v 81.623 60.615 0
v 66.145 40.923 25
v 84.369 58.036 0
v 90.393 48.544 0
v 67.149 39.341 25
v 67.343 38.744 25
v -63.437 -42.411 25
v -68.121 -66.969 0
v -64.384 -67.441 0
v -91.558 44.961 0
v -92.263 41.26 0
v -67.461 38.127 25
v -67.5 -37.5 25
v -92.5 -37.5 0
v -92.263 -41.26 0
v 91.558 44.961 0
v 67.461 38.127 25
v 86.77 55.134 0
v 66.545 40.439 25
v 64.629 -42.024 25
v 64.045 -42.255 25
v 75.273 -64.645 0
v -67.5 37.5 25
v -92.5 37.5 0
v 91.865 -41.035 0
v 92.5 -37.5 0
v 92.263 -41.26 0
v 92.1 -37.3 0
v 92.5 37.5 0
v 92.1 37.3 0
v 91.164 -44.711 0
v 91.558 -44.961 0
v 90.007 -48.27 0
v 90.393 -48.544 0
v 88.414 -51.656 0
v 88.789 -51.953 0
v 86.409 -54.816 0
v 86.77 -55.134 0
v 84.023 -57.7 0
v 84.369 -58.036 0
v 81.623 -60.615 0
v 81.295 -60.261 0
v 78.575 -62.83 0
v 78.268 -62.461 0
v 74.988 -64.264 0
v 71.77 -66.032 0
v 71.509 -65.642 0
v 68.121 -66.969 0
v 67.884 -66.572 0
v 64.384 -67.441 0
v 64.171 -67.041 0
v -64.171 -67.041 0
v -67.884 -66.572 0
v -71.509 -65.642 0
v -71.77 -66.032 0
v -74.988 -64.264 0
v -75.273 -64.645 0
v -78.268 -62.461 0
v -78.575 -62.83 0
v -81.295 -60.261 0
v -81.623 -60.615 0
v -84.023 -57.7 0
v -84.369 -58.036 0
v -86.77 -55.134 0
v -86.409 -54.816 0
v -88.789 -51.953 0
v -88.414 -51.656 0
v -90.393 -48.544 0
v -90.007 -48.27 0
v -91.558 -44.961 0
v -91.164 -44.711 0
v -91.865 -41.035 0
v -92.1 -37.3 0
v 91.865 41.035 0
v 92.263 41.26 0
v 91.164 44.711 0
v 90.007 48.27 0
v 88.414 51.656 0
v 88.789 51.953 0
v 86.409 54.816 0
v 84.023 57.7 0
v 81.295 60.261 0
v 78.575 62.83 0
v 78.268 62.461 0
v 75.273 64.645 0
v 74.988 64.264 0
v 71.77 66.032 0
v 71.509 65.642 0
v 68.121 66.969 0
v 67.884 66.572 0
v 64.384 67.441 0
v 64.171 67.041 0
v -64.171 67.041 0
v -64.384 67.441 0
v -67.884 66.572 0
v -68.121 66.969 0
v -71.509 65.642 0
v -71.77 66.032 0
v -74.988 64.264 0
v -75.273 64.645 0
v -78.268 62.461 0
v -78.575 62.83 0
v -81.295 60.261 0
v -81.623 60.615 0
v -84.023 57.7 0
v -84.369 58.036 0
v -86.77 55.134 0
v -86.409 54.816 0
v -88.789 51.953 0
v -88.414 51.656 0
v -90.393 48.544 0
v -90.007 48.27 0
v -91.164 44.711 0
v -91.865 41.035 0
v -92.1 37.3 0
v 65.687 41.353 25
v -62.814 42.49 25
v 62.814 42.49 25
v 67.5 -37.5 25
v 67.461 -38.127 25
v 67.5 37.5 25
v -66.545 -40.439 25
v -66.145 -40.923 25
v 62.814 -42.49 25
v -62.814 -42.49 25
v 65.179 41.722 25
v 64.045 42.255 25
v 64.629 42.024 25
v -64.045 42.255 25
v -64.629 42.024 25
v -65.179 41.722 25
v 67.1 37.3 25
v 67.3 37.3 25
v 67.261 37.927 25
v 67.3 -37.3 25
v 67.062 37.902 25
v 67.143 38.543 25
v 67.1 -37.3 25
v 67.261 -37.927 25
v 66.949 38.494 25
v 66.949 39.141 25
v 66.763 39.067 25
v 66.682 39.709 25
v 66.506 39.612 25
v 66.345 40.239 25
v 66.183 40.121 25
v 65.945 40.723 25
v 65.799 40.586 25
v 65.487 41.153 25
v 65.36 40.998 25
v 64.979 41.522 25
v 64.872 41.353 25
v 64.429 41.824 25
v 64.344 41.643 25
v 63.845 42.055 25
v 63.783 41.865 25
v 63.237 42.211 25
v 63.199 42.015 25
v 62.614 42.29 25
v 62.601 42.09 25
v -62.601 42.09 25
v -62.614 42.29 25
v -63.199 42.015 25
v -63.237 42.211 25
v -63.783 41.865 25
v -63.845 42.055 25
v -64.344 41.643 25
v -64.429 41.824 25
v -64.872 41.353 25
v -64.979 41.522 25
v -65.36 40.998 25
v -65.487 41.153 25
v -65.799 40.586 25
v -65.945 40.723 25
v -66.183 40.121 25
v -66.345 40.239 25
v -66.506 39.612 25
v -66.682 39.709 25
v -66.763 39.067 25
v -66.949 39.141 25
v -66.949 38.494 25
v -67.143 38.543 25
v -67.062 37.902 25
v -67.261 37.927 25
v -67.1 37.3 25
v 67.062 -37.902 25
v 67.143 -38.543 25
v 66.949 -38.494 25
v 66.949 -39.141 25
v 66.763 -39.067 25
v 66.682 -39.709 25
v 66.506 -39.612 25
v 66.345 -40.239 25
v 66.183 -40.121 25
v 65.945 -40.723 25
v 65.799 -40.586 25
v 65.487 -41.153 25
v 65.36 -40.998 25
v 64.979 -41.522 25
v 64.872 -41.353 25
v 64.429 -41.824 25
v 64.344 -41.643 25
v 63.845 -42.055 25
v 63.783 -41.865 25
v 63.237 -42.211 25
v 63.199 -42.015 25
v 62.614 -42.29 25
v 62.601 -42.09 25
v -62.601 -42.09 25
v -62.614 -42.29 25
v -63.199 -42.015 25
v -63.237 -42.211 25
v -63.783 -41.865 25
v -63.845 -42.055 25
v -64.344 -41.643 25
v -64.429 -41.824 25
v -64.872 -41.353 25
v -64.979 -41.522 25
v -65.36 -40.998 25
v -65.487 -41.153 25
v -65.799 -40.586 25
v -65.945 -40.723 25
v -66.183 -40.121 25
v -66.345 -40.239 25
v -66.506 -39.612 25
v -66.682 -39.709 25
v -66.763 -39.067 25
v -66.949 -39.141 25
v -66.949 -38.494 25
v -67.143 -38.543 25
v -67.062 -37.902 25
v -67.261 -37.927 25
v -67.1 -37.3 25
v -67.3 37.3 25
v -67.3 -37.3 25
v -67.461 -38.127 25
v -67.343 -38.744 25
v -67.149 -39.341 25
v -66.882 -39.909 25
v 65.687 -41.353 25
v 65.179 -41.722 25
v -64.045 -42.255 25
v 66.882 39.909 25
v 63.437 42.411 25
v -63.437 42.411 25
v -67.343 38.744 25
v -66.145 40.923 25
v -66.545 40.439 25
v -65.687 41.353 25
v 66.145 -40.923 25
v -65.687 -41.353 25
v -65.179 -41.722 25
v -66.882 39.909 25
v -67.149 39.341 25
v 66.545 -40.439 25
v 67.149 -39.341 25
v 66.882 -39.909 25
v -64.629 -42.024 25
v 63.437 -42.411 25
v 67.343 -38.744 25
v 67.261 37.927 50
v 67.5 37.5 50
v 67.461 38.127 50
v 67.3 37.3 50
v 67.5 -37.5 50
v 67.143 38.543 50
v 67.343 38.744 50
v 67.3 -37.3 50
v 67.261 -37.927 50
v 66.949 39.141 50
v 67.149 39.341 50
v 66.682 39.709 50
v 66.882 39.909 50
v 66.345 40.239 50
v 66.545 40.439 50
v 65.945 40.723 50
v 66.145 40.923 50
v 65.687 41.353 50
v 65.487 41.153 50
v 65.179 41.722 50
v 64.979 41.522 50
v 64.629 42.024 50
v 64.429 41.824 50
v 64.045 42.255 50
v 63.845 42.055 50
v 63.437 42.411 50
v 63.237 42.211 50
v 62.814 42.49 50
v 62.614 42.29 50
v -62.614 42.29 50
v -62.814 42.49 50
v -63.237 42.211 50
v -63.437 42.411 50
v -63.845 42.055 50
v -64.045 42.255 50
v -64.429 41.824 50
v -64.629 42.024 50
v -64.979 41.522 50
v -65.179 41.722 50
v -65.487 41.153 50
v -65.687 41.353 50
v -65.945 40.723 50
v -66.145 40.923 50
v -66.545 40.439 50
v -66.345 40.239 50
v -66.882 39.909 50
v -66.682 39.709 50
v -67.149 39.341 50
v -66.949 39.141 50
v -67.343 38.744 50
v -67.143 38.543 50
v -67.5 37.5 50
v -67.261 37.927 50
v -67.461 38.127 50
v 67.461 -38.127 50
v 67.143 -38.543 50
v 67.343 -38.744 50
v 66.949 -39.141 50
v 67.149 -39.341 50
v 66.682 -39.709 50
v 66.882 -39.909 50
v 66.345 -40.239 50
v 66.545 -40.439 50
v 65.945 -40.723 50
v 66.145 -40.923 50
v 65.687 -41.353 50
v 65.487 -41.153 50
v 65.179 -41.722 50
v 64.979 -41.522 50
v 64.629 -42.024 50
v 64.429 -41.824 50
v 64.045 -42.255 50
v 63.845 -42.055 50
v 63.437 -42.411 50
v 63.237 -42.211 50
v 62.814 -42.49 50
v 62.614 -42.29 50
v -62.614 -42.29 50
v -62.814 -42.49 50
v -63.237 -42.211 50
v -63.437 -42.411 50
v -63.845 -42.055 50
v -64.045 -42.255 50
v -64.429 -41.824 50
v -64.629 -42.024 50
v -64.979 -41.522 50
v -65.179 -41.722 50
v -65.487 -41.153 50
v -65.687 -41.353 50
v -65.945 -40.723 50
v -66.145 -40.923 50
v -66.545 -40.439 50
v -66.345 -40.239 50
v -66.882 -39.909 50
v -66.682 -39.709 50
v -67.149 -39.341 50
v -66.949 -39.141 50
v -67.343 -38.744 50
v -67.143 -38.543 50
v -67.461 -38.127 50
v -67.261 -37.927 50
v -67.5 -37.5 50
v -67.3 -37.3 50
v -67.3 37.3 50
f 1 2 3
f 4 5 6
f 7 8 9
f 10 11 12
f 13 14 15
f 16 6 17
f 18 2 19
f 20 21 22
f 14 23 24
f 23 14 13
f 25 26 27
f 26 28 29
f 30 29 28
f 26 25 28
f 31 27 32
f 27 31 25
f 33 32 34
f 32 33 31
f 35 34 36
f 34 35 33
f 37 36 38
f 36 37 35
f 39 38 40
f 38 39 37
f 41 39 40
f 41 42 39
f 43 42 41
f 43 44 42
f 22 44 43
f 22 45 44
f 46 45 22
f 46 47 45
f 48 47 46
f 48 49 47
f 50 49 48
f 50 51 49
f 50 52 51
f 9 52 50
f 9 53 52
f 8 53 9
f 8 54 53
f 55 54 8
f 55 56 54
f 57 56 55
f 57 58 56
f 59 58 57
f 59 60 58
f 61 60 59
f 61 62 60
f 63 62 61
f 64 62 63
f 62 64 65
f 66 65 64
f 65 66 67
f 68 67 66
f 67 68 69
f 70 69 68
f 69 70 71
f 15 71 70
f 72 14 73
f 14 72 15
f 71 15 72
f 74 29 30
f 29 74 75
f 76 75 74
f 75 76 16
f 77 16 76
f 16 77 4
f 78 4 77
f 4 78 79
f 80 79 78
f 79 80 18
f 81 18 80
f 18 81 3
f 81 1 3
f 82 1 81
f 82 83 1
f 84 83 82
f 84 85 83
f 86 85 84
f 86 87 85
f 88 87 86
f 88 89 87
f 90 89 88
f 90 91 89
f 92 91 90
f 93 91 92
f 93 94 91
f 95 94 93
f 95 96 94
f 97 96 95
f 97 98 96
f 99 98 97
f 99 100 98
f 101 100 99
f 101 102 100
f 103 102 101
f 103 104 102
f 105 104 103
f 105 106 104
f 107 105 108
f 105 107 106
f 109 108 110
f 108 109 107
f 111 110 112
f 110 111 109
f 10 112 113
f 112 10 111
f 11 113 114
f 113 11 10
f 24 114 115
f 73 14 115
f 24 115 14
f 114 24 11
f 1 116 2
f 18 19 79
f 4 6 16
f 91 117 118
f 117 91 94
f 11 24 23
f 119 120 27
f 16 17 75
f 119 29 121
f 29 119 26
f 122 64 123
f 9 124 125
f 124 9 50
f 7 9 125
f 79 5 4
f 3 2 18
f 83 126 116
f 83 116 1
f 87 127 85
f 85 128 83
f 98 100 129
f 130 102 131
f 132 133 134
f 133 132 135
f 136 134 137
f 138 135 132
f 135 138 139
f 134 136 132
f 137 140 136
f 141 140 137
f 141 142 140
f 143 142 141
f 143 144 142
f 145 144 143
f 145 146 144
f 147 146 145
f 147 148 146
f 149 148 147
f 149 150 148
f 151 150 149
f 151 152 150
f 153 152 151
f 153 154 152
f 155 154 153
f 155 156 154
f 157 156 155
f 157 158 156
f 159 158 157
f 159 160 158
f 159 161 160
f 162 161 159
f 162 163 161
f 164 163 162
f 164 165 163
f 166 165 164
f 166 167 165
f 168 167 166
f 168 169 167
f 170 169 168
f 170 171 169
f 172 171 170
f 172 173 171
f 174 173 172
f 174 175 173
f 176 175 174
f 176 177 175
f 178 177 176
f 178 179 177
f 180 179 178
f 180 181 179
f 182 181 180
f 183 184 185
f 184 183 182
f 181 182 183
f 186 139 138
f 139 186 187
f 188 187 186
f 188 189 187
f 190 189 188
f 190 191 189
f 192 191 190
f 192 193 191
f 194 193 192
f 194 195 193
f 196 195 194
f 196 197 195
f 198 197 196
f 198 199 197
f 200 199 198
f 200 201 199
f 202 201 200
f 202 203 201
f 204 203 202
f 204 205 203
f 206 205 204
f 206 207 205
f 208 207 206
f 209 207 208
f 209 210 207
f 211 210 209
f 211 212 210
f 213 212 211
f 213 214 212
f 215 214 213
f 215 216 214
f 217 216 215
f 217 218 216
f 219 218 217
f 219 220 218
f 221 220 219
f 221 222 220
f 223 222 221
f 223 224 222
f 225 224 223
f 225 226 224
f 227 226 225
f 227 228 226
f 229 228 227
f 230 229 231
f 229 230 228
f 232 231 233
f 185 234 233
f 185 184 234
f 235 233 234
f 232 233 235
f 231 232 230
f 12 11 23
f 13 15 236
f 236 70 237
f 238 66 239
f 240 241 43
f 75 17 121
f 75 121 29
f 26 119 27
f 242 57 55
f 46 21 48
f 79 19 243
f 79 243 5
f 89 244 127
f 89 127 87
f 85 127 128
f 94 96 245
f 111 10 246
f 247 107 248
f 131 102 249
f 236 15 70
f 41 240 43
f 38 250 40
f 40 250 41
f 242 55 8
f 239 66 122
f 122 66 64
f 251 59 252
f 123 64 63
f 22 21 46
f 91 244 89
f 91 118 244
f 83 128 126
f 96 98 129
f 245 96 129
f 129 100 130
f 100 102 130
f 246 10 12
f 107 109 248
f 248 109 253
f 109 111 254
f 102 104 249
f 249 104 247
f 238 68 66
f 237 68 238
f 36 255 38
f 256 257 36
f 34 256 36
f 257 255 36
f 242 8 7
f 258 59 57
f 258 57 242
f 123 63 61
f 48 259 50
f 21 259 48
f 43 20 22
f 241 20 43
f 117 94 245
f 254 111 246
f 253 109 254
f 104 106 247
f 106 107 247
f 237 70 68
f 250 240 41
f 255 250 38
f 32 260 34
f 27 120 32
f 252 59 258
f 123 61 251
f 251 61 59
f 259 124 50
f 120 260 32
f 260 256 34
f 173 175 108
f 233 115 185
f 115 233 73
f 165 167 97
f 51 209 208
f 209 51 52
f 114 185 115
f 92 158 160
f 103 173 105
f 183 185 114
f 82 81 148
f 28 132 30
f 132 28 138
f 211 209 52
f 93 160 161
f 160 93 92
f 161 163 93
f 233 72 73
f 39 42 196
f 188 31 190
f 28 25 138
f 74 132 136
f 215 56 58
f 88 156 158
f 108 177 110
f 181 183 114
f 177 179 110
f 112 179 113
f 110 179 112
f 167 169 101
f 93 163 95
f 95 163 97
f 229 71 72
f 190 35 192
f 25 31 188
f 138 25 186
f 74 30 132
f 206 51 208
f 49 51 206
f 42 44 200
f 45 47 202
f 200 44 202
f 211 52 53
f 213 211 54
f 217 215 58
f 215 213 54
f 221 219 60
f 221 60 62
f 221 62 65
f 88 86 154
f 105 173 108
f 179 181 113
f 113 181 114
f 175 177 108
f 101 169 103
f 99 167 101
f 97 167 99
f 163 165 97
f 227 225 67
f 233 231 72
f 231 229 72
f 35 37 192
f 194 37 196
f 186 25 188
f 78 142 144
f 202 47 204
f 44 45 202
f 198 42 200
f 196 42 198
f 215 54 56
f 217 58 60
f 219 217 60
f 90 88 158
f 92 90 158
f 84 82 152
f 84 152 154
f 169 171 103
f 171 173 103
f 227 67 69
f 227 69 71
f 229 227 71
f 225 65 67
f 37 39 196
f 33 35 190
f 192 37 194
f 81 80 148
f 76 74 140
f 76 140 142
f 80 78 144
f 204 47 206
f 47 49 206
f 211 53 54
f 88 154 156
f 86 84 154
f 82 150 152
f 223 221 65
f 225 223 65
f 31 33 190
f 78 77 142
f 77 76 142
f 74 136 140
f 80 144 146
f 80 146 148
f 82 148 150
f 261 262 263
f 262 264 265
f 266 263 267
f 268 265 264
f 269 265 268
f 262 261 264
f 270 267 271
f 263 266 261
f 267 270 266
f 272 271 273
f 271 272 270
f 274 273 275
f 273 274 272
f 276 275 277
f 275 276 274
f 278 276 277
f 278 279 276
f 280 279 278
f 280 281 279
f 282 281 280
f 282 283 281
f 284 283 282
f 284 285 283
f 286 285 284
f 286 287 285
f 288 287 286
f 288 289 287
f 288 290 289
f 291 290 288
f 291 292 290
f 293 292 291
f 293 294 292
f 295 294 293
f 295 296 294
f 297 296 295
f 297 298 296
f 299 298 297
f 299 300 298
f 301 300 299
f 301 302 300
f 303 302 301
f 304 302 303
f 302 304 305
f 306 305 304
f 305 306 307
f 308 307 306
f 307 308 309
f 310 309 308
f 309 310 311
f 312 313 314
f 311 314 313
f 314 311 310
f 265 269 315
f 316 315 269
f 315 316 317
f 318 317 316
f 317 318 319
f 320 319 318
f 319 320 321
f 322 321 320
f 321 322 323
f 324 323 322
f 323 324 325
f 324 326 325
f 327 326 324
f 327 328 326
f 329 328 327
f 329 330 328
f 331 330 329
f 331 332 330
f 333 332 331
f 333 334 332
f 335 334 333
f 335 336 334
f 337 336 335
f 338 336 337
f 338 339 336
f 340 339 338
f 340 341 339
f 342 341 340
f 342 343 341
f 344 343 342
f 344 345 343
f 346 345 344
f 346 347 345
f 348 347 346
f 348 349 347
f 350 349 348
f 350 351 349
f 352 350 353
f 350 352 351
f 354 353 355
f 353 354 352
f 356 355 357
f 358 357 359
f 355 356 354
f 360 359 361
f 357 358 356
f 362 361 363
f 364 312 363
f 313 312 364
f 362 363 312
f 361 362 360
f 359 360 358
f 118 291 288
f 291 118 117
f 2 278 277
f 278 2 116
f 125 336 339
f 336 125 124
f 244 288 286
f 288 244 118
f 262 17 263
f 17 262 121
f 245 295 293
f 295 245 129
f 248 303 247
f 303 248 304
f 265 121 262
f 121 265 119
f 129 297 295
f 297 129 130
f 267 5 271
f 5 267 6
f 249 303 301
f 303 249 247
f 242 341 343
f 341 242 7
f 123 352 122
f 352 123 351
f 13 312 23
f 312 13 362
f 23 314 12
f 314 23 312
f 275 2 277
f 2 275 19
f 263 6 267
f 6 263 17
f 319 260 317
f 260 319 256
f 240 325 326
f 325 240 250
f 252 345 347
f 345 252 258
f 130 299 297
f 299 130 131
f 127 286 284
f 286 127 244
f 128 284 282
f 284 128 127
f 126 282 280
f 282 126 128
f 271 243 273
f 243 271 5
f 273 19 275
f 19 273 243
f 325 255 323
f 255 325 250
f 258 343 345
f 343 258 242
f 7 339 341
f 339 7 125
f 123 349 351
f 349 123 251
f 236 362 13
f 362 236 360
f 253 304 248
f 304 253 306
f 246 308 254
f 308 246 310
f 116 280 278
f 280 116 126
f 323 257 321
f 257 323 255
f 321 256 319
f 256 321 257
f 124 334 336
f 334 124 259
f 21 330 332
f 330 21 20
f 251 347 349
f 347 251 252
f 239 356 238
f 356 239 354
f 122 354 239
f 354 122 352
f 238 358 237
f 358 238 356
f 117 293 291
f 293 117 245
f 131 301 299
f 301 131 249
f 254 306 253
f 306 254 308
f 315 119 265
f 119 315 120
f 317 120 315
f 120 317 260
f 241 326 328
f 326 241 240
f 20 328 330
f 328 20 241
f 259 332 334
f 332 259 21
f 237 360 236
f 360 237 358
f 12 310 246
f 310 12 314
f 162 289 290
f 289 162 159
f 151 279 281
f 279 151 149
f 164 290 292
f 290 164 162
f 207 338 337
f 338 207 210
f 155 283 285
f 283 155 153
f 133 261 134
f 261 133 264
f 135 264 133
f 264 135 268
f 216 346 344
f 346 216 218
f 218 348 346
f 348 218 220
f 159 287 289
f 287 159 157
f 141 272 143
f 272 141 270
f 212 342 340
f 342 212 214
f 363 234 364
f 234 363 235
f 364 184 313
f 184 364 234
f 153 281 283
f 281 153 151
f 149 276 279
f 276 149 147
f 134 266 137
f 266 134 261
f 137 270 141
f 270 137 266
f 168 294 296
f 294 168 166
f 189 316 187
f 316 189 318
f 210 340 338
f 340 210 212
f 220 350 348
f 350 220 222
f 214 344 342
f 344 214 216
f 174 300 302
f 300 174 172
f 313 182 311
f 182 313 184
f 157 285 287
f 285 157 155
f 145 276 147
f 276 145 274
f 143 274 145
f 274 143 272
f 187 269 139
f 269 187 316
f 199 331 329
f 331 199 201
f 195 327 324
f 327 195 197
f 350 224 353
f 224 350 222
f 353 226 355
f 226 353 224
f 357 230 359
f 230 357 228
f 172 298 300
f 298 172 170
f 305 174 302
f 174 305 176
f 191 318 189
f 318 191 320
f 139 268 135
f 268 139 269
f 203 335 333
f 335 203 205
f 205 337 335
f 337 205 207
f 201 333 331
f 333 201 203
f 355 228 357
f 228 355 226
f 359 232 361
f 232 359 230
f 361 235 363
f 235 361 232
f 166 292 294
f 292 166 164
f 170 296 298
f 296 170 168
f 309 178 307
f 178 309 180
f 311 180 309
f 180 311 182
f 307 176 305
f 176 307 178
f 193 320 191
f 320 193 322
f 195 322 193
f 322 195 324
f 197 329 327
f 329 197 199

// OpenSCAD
$fn = 50;


difference() {
	union() {
		translate(v = [0, 0, 0]) {
			rotate(a = [0, 0, 0]) {
				difference() {
					union() {
						hull() {
							translate(v = [-62.5000000000, 37.5000000000, 0]) {
								cylinder(h = 25, r = 5, r1 = 30.0000000000, r2 = 5);
							}
							translate(v = [62.5000000000, 37.5000000000, 0]) {
								cylinder(h = 25, r = 5, r1 = 30.0000000000, r2 = 5);
							}
							translate(v = [-62.5000000000, -37.5000000000, 0]) {
								cylinder(h = 25, r = 5, r1 = 30.0000000000, r2 = 5);
							}
							translate(v = [62.5000000000, -37.5000000000, 0]) {
								cylinder(h = 25, r = 5, r1 = 30.0000000000, r2 = 5);
							}
						}
					}
					union() {
						hull() {
							translate(v = [-62.3000000000, 37.3000000000, 0]) {
								cylinder(h = 25, r = 5, r1 = 29.8000000000, r2 = 4.8000000000);
							}
							translate(v = [62.3000000000, 37.3000000000, 0]) {
								cylinder(h = 25, r = 5, r1 = 29.8000000000, r2 = 4.8000000000);
							}
							translate(v = [-62.3000000000, -37.3000000000, 0]) {
								cylinder(h = 25, r = 5, r1 = 29.8000000000, r2 = 4.8000000000);
							}
							translate(v = [62.3000000000, -37.3000000000, 0]) {
								cylinder(h = 25, r = 5, r1 = 29.8000000000, r2 = 4.8000000000);
							}
						}
					}
				}
			}
		}
		translate(v = [0, 0, 25]) {
			rotate(a = [0, 0, 0]) {
				difference() {
					union() {
						hull() {
							translate(v = [-62.5000000000, 37.5000000000, 0]) {
								cylinder(h = 25, r = 5);
							}
							translate(v = [62.5000000000, 37.5000000000, 0]) {
								cylinder(h = 25, r = 5);
							}
							translate(v = [-62.5000000000, -37.5000000000, 0]) {
								cylinder(h = 25, r = 5);
							}
							translate(v = [62.5000000000, -37.5000000000, 0]) {
								cylinder(h = 25, r = 5);
							}
						}
					}
					union() {
						hull() {
							translate(v = [-62.3000000000, 37.3000000000, 0]) {
								cylinder(h = 25, r = 5);
							}
							translate(v = [62.3000000000, 37.3000000000, 0]) {
								cylinder(h = 25, r = 5);
							}
							translate(v = [-62.3000000000, -37.3000000000, 0]) {
								cylinder(h = 25, r = 5);
							}
							translate(v = [62.3000000000, -37.3000000000, 0]) {
								cylinder(h = 25, r = 5);
							}
						}
					}
				}
			}
		}
	}
	union();
}
